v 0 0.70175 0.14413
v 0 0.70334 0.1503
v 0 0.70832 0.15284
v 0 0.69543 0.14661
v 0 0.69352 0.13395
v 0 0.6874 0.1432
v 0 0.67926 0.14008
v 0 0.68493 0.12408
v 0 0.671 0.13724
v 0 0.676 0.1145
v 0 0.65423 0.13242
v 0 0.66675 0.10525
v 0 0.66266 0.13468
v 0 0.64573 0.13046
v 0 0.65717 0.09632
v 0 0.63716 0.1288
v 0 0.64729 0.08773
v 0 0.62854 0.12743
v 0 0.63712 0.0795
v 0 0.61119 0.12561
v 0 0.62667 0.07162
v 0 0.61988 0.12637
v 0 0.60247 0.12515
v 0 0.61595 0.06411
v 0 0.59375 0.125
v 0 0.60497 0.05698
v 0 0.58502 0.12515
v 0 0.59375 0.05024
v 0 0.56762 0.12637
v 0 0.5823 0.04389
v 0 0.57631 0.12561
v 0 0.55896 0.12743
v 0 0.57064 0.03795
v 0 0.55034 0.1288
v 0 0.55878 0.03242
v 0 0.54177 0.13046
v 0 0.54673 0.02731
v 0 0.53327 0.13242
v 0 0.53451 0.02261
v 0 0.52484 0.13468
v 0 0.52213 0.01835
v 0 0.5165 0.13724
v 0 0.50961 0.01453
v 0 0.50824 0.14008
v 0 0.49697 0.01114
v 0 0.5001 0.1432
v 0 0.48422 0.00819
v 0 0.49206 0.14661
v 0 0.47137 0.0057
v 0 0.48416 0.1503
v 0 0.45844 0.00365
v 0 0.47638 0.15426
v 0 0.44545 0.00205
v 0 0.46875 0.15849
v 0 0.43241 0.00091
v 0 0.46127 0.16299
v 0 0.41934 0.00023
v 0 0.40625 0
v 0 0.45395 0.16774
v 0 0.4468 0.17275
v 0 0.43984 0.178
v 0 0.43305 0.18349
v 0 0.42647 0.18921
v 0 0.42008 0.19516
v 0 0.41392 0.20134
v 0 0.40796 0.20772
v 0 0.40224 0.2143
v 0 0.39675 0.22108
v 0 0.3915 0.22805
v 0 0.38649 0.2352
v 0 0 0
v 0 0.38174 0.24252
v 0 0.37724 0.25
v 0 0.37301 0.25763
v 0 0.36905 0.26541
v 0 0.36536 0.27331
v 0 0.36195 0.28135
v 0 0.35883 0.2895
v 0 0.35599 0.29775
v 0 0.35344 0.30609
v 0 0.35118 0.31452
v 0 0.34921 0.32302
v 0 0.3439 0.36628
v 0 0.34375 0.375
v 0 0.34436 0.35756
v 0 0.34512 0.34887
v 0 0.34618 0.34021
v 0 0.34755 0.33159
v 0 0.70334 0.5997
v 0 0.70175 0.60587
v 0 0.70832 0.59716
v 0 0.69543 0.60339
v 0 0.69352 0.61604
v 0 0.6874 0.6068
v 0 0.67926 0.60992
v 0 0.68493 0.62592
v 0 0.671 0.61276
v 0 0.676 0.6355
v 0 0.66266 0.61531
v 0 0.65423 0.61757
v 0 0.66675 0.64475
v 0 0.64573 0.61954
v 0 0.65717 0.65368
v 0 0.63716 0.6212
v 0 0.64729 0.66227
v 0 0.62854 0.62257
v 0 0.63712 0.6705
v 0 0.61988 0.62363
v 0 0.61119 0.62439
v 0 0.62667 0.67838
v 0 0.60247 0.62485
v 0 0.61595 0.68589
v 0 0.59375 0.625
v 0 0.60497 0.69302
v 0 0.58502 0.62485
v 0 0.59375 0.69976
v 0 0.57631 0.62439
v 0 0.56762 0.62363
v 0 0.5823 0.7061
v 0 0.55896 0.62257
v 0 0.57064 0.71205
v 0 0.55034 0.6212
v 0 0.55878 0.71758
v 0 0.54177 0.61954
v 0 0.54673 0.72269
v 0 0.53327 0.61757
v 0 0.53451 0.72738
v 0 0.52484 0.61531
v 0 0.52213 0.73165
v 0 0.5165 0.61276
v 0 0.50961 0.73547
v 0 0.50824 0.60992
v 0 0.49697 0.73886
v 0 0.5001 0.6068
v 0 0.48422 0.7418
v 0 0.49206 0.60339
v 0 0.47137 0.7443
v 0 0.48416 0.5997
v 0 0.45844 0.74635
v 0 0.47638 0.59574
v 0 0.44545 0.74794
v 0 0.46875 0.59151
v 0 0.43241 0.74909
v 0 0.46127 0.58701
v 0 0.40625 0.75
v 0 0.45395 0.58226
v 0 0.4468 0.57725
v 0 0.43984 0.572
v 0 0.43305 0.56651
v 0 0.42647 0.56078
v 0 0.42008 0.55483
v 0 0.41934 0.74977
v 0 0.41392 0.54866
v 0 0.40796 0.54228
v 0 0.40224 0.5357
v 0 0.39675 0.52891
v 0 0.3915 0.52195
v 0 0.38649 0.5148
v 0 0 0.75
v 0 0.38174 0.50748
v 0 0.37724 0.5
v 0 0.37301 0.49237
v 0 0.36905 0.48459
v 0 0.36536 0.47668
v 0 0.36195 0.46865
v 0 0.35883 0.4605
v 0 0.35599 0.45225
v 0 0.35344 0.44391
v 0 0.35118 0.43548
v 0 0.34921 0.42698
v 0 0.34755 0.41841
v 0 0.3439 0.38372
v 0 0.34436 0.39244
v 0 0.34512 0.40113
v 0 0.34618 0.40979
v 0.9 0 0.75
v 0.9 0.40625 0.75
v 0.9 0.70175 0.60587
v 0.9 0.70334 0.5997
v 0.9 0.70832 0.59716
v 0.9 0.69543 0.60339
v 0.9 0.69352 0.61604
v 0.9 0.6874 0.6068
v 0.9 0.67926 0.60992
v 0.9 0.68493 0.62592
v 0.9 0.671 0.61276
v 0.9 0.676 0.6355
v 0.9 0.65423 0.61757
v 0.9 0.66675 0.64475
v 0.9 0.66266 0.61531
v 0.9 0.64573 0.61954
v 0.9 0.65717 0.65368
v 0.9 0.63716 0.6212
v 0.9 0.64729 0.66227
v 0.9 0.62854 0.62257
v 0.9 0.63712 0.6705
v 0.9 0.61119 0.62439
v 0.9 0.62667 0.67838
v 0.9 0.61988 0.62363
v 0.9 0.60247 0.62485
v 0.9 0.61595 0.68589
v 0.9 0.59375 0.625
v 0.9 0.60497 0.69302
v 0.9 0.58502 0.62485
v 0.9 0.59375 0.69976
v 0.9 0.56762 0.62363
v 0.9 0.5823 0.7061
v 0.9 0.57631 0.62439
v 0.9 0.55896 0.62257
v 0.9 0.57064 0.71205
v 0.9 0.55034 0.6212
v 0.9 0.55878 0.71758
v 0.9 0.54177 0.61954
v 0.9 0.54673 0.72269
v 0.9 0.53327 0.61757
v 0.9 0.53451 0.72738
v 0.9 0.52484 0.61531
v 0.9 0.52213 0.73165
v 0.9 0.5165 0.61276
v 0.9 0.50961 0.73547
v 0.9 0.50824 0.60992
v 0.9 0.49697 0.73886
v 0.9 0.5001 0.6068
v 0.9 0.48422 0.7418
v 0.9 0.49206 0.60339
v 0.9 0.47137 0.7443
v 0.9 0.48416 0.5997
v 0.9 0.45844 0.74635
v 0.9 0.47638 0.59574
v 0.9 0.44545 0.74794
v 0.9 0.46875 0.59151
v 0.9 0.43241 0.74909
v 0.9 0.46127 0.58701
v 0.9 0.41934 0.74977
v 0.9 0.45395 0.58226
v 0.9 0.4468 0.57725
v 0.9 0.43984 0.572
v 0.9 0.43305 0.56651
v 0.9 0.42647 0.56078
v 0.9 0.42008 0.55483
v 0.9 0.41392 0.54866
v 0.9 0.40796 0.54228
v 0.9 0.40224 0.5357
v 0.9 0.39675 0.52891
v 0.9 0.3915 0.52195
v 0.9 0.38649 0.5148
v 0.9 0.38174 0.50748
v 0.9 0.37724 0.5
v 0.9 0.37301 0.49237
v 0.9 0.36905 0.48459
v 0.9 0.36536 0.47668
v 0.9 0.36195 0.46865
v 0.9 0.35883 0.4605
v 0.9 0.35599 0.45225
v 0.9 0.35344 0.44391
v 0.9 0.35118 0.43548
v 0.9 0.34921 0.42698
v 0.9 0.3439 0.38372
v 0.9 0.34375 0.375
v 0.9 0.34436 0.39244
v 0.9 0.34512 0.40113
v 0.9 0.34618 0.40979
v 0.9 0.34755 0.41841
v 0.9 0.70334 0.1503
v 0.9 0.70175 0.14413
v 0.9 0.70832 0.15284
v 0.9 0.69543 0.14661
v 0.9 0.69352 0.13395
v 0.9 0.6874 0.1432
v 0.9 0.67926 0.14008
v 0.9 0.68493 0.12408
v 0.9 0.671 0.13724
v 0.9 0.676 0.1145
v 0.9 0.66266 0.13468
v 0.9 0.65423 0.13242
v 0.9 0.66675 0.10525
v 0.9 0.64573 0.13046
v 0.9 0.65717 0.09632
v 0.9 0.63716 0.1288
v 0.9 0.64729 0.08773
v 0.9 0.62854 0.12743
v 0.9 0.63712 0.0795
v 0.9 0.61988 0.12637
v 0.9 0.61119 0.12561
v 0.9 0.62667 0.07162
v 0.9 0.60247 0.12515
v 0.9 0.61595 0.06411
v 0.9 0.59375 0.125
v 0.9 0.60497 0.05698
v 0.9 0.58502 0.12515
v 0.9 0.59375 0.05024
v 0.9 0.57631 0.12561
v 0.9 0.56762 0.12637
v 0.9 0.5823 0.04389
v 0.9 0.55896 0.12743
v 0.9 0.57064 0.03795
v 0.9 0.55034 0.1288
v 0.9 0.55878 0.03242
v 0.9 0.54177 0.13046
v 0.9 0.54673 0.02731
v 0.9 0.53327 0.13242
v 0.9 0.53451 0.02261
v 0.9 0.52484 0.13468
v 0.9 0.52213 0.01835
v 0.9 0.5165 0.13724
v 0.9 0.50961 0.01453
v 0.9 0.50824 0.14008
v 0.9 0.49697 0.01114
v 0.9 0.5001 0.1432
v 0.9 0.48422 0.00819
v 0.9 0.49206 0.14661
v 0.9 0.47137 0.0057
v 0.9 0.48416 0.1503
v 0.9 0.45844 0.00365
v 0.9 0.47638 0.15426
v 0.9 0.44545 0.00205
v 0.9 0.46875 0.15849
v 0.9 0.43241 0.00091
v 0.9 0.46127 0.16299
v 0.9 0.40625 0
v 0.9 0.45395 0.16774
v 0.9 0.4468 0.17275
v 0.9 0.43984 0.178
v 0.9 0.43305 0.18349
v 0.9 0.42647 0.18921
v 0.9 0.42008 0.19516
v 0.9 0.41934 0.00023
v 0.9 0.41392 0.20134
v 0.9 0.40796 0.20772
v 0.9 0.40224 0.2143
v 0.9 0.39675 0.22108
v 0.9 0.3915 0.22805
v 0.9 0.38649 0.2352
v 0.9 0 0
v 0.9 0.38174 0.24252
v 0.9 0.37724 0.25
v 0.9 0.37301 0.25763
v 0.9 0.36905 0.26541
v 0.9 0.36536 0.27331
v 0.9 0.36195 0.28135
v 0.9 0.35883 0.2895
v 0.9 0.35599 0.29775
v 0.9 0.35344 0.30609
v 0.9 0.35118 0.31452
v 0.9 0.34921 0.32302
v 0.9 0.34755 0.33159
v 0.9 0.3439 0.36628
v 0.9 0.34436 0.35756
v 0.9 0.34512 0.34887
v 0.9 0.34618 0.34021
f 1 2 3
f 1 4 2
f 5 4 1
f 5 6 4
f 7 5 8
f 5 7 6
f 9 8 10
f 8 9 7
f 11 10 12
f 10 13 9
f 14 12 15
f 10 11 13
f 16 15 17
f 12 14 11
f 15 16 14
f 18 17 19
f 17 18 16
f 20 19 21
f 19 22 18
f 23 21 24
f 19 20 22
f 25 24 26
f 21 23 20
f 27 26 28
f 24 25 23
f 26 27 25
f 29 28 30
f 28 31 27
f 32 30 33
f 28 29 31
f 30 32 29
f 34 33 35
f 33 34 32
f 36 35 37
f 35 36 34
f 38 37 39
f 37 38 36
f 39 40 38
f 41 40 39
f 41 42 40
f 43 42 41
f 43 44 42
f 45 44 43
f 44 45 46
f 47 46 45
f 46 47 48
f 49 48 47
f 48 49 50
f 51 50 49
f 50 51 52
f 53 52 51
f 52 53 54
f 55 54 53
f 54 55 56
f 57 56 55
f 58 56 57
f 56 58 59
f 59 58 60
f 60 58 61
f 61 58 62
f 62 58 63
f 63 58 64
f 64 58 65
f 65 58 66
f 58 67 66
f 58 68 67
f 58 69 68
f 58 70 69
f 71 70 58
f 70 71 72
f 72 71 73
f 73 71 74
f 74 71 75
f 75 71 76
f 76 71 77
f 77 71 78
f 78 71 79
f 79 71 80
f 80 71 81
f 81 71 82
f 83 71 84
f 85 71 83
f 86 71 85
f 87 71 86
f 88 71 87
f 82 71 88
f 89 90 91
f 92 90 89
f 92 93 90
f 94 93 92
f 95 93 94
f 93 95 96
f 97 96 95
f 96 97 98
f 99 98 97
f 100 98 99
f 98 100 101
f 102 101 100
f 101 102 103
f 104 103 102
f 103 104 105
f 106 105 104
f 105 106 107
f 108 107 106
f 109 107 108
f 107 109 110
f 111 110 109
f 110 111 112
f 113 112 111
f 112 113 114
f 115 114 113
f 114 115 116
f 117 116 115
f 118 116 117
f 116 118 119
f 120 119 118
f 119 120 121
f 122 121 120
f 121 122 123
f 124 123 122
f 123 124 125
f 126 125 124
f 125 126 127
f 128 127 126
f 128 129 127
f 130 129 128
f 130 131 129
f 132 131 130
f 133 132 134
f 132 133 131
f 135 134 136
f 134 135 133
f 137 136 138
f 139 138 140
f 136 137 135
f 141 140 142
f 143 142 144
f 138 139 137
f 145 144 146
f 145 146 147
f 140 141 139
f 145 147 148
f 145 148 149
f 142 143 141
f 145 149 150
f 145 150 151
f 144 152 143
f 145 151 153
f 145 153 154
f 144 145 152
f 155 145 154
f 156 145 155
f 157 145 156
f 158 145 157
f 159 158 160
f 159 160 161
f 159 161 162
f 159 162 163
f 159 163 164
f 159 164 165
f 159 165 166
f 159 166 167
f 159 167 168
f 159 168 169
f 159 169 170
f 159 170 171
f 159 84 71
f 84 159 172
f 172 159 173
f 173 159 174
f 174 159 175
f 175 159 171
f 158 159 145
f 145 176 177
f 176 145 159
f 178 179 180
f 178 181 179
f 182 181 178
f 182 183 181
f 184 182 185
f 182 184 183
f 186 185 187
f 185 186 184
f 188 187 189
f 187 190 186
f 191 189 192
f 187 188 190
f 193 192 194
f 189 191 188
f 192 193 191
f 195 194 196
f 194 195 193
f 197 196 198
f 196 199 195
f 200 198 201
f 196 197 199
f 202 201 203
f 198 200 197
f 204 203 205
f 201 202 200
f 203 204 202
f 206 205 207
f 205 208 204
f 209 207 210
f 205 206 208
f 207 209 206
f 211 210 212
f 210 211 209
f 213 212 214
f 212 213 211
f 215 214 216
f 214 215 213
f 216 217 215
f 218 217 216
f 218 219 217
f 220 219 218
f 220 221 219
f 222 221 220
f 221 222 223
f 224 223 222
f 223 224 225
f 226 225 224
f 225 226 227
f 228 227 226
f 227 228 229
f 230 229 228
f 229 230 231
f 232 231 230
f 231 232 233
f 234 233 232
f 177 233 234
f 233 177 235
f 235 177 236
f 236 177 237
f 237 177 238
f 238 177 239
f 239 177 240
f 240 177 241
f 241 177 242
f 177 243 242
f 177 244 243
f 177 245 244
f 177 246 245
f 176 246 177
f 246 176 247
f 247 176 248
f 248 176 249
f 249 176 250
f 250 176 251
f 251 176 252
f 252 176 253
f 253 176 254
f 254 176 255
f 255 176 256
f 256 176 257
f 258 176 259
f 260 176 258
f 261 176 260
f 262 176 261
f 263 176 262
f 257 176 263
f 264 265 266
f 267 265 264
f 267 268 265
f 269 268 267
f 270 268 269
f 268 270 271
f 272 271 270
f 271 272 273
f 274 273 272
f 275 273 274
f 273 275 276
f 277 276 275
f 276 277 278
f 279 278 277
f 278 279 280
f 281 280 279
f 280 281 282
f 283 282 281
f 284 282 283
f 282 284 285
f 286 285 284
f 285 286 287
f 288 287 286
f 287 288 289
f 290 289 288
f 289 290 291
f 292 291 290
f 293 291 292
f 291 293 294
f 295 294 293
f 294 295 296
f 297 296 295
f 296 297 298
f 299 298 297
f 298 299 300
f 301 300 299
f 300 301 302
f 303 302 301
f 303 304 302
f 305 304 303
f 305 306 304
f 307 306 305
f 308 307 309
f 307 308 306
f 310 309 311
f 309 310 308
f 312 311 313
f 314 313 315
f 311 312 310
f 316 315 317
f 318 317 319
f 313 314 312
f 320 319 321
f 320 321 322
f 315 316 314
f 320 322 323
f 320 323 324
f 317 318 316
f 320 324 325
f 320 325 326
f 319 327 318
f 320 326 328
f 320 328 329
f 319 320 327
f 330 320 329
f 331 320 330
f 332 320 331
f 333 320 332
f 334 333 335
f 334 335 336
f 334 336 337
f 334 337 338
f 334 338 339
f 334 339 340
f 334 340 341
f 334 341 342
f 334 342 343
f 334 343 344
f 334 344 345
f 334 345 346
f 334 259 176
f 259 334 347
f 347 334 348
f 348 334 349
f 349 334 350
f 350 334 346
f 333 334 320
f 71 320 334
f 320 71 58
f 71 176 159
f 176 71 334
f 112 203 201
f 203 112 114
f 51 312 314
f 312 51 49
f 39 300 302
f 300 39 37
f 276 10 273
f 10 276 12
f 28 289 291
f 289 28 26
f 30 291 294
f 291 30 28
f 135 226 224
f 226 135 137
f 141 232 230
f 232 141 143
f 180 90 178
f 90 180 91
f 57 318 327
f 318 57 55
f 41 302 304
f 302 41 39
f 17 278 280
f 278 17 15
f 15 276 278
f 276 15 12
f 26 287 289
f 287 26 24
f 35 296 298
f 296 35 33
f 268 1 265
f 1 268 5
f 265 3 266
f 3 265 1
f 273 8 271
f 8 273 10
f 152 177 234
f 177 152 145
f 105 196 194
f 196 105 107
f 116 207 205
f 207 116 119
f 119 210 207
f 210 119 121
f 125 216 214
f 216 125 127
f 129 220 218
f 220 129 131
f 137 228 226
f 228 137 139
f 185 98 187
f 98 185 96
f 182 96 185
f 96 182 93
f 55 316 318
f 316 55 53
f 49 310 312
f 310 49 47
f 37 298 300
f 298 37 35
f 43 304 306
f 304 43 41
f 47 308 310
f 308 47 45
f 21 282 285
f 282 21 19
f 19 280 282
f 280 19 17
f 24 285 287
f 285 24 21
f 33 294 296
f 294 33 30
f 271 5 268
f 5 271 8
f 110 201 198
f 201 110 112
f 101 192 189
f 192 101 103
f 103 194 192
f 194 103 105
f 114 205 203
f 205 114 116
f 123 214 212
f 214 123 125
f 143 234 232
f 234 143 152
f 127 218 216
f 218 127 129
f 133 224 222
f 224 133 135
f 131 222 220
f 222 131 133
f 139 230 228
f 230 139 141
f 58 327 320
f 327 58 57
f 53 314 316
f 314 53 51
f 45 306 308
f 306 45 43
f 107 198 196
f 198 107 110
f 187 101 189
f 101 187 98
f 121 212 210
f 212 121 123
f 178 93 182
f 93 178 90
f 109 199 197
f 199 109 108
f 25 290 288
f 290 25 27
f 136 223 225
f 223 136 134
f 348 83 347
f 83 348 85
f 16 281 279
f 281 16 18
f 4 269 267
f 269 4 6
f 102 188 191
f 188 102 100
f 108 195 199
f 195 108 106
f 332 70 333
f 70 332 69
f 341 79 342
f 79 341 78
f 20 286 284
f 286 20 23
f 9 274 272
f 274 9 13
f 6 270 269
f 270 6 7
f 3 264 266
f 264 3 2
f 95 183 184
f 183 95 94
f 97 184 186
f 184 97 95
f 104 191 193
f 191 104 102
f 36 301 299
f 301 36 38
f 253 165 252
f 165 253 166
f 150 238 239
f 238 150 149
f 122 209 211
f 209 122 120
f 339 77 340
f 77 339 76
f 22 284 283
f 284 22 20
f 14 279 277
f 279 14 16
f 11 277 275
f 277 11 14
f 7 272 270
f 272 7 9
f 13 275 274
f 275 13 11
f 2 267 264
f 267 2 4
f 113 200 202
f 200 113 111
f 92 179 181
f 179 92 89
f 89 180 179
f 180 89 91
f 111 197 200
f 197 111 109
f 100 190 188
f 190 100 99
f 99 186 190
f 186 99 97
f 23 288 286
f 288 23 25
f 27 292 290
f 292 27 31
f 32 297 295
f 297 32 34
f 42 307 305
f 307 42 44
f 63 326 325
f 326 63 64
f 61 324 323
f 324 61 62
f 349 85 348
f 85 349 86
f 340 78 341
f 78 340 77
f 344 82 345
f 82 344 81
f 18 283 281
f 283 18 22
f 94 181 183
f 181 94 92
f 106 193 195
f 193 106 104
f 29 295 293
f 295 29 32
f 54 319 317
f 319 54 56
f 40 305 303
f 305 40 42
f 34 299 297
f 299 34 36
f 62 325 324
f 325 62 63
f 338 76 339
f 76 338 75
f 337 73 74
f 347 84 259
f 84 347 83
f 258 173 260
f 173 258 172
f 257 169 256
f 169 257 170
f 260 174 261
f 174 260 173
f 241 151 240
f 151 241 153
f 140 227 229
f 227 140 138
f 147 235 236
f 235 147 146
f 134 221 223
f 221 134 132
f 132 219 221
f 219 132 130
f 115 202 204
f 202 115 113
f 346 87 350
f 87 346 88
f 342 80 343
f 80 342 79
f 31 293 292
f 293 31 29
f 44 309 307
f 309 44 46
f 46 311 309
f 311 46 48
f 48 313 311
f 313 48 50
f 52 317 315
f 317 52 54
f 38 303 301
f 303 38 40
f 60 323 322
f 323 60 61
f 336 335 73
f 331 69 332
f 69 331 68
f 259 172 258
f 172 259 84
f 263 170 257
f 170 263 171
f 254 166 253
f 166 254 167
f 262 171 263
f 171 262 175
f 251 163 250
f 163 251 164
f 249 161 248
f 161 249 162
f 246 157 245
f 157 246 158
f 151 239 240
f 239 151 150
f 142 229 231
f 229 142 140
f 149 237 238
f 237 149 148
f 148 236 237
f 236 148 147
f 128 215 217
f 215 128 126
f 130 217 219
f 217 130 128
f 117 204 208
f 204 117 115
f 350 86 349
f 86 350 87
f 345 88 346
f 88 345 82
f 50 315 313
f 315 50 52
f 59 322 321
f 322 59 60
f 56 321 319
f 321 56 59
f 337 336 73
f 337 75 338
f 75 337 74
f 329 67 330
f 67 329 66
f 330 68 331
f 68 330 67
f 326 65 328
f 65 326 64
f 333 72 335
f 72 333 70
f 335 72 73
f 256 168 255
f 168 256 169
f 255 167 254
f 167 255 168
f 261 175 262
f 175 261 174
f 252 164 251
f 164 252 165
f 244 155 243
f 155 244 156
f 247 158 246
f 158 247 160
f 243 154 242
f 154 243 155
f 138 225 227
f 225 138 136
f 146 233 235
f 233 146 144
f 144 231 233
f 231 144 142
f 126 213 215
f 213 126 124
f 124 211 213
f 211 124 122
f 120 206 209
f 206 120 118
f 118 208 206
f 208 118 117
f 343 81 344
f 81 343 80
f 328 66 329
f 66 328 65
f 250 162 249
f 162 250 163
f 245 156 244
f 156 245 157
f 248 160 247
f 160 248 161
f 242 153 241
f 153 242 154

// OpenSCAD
z = 3/4;
x = 0.9; //was 7/8
y = 1/2 - 3/32;
rod = 3/8;
rod_clearance = 1/8;

_rod_hole = rod + rod_clearance;

difference(){
  union(){
    cube([x,y,z]);
    translate([0,y,z/2]){
      rotate(a=[0,90,0]){
        cylinder(h=x, r=z/2, center=false, $fn=180);
      }
    }
  }
  translate([0,(y+z/2) - rod/2, z/2]){
    rotate(a=[0,90,0]){
      cylinder(h=x, r=_rod_hole/2, center=false, $fn=180);
    }
  }
}
